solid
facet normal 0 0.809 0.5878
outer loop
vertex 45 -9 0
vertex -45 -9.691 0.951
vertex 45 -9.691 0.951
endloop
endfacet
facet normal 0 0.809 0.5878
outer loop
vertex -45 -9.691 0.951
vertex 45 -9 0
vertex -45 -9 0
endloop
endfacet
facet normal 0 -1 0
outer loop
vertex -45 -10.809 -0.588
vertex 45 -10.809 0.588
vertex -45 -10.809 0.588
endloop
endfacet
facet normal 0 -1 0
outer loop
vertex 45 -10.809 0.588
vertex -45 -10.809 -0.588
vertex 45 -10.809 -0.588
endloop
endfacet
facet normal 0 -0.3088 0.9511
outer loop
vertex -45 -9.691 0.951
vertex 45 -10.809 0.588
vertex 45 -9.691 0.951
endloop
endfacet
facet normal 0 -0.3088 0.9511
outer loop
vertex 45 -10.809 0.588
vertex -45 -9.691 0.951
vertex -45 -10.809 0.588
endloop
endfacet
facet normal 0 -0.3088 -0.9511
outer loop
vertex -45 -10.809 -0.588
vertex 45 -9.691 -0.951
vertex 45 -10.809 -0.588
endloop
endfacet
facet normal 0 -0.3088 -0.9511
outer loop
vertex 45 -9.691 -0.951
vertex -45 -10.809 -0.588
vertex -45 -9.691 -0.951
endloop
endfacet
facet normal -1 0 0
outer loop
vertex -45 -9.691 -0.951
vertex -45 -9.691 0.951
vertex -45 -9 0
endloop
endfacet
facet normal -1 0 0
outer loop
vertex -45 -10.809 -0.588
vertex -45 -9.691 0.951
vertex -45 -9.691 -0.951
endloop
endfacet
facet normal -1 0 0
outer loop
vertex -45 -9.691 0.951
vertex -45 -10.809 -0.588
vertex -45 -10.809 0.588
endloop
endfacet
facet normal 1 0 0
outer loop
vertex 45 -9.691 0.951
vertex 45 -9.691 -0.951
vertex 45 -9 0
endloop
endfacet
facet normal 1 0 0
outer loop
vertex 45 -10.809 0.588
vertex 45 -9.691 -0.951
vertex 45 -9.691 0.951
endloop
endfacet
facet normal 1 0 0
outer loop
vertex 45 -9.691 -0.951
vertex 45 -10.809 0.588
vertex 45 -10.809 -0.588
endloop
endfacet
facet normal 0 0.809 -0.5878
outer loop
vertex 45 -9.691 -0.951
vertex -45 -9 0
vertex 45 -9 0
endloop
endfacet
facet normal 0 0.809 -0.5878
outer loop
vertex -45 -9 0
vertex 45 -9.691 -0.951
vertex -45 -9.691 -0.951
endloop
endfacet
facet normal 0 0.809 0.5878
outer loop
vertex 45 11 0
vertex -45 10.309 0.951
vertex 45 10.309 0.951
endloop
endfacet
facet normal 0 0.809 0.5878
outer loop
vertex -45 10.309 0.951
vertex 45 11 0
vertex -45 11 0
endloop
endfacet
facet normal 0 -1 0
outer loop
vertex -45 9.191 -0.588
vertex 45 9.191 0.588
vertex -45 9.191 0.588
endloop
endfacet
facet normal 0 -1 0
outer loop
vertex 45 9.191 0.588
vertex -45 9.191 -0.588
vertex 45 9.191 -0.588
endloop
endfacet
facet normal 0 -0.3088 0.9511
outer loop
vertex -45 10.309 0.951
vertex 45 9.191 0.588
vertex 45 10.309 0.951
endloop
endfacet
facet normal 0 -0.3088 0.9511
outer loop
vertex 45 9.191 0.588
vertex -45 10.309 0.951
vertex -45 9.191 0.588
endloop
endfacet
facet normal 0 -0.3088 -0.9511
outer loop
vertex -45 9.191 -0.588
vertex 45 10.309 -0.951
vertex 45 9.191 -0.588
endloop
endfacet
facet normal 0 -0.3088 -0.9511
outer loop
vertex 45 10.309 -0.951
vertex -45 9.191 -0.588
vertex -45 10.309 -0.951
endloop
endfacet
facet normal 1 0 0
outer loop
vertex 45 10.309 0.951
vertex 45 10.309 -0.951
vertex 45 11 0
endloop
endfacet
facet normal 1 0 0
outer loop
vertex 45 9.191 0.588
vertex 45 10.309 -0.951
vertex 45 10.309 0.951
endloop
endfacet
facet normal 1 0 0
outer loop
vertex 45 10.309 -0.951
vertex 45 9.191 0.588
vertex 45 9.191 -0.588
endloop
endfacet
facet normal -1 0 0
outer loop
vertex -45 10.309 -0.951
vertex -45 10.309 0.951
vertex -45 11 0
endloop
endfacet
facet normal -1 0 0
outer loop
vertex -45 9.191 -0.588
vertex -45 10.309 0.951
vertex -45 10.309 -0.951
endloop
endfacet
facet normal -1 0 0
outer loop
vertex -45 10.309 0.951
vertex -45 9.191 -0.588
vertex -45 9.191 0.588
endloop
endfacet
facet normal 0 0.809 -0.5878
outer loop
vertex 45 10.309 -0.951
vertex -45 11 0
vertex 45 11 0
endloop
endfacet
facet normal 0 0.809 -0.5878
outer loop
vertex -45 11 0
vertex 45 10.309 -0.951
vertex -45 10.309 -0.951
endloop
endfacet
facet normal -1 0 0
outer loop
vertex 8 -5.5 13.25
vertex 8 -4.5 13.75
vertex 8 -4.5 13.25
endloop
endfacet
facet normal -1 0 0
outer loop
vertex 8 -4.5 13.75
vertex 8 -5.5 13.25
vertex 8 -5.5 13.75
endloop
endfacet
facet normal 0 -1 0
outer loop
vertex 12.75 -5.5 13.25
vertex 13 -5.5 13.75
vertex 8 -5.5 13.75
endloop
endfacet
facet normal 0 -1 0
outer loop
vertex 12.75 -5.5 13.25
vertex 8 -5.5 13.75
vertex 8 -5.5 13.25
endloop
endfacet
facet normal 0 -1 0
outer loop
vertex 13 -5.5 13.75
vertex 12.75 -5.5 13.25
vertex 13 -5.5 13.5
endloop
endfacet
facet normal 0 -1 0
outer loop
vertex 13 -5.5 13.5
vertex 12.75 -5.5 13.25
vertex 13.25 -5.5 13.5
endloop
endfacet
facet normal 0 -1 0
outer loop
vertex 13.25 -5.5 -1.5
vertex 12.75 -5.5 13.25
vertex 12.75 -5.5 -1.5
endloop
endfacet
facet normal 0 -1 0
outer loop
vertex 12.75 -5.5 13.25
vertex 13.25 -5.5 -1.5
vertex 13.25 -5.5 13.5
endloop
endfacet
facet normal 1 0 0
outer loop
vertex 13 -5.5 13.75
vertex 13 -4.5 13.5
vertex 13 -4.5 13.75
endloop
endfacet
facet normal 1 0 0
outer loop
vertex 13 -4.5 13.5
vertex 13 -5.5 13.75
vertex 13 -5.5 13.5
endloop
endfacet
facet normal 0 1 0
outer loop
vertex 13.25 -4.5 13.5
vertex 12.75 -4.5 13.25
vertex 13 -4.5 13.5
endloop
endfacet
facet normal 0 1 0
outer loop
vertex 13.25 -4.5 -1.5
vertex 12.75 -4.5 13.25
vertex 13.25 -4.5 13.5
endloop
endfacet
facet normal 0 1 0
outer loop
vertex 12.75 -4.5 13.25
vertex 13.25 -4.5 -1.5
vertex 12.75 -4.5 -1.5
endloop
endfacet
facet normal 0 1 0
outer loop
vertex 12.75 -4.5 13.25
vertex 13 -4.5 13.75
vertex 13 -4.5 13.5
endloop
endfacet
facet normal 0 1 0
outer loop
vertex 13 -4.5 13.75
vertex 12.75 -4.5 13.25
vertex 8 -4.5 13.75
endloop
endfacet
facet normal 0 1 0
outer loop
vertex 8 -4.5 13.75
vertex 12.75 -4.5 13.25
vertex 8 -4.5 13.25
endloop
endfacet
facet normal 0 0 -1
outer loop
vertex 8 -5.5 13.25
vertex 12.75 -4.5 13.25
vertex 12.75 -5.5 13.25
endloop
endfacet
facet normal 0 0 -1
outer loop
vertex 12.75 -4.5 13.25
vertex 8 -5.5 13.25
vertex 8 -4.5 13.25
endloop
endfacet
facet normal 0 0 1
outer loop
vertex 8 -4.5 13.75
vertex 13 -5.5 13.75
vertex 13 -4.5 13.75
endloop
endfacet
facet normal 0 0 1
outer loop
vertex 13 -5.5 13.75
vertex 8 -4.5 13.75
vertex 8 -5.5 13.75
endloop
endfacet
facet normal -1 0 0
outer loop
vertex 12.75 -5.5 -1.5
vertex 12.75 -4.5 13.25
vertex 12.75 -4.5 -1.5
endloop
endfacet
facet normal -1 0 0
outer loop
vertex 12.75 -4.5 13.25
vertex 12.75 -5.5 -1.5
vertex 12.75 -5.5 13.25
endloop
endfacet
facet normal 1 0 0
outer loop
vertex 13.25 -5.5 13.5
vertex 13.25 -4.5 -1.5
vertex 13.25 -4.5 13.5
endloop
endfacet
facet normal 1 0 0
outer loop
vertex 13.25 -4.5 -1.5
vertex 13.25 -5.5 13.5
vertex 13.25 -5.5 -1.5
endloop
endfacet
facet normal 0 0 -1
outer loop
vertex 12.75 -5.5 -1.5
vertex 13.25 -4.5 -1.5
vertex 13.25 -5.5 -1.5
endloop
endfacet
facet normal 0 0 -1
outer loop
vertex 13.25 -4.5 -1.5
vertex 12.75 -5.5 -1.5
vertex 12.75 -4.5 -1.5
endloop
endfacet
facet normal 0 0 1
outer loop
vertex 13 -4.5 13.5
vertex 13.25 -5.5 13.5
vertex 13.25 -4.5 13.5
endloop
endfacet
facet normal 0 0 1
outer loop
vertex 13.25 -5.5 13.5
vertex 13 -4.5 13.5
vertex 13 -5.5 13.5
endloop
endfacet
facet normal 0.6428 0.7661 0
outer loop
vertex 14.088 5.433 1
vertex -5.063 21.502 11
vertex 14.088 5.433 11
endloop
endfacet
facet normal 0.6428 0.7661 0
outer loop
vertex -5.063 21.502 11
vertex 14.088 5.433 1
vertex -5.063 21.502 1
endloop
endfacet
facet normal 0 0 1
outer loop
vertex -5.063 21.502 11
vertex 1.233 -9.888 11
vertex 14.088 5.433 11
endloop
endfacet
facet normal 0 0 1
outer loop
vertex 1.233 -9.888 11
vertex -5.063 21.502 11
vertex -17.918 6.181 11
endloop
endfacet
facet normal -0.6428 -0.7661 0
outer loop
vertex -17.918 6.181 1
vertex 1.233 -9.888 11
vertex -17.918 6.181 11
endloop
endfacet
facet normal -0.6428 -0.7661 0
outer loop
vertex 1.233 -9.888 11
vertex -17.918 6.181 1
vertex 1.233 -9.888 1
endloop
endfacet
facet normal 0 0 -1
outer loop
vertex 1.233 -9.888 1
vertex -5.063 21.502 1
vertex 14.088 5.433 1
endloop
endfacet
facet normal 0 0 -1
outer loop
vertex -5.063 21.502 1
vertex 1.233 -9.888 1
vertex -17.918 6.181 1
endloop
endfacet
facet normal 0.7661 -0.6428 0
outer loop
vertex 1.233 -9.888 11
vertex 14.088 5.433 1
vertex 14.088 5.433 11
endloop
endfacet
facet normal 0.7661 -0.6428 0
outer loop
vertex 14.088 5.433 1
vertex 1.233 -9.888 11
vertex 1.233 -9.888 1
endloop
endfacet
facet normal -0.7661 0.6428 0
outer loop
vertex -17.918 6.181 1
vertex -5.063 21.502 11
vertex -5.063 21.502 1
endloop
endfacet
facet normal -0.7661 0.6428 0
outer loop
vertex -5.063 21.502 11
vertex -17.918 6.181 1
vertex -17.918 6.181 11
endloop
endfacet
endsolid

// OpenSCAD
// file: common.scad
module parralel_poles() {
    rotate(90, [0, 0, 1]) {
        rotate(90, [1, 0, 0]) {
            for(width = [-10, 10]) {
                translate([width, 0, 0]) {
                    cylinder(h=90, r1=1, r2=1, center=true);
                }
            }
        }
    }
}
module label() {
    translate([-45, 15, 0]) {
        text(text="BACK", size=5);
    }
    translate([-45, -20, 0]) {
        text(text="FRONT", size=5);
    }
}

module box() {
  translate([0, 2.5, 6]) {
      cube([20,25,10], center=true);
  }
}
// main file
include <common.scad>

parralel_poles();
label();

translate([13, -5, 6]) {
    rotate(90, [1, 0, 0]) {
        translate([-2.5, 7.5, 0]) {
            cube([5, 0.5, 1], center=true);
        }
        cube([0.5, 15, 1], center=true);
        rotate(90, [0, -1, 0]) {
          text("←", size=8);
        }
    }
}

translate([0, 4.2, 0]) {
    rotate(50, [0, 0, 1]){
      box();
    }
}
